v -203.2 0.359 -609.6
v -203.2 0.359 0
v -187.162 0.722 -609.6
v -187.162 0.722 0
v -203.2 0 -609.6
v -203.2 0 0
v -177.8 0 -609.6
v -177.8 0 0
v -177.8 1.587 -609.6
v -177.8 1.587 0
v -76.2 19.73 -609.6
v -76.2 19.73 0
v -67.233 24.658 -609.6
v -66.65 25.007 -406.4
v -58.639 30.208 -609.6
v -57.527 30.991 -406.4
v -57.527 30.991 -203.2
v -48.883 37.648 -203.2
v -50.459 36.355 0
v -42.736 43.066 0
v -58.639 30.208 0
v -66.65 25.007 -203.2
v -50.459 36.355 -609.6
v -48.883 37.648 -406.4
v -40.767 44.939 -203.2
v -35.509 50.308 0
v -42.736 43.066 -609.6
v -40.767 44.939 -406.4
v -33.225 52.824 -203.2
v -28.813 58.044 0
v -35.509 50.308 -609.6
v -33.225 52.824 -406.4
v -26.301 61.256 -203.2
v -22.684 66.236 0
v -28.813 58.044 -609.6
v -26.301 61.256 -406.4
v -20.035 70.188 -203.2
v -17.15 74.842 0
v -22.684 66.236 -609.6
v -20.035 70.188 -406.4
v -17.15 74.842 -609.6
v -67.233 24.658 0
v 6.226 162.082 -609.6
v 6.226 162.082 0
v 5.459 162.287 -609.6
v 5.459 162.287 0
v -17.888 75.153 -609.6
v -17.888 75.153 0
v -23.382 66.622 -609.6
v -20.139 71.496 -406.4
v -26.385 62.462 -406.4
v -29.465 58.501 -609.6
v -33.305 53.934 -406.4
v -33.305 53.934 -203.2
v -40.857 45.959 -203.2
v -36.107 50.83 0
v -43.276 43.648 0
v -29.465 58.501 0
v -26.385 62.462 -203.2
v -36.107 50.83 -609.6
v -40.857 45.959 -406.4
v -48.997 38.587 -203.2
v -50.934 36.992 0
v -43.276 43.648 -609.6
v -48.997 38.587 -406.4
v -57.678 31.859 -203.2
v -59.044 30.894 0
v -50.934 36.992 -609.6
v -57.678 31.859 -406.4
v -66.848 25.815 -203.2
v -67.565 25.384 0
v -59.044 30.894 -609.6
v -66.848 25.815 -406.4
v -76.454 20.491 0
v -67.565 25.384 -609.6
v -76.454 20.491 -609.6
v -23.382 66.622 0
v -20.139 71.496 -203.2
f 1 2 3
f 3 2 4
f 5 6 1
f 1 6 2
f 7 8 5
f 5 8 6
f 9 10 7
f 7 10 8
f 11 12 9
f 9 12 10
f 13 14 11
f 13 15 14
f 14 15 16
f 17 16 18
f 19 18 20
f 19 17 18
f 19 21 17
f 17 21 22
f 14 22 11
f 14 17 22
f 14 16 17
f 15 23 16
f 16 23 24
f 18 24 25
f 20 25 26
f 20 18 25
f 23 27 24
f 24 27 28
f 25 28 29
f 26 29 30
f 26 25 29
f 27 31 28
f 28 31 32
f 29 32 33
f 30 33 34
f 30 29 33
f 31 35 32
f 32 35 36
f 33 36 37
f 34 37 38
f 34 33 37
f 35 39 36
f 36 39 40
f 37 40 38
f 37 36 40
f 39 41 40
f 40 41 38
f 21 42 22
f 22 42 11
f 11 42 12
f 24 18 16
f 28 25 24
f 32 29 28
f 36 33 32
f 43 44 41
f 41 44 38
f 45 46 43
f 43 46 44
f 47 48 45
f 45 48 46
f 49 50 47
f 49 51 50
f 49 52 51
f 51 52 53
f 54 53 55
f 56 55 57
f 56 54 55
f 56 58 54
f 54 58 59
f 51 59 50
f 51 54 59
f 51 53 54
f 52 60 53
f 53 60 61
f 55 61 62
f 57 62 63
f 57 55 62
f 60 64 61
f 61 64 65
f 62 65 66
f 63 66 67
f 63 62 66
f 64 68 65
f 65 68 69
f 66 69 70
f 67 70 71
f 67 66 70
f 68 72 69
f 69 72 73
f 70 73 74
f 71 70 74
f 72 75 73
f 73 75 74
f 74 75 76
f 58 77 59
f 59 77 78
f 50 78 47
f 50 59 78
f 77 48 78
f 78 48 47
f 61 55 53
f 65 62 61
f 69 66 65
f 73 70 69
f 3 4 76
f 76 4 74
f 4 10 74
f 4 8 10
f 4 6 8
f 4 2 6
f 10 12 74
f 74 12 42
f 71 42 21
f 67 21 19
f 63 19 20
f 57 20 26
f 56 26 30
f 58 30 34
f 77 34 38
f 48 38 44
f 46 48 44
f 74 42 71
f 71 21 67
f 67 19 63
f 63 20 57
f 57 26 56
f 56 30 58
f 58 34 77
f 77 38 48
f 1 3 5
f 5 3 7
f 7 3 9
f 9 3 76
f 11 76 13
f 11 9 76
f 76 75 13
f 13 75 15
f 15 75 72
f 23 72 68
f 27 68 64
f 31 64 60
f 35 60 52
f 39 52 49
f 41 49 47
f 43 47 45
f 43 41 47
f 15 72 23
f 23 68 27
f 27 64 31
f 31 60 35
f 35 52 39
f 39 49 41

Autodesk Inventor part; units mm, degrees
ref_plane "YZ Plane" through (0, 0, 0) normal (1, 0, 0) x (0, 1, 0)
ref_plane "XZ Plane" through (0, 0, 0) normal (0, 1, 0) x (-1, 0, 0)
ref_plane "XY Plane" through (0, 0, 0) normal (0, 0, 1) x (1, 0, 0)
ref_plane "Work Plane1" through (0, 0, 0) normal (0, 0, 1) x (1, 0, 0)
sketch "Sketch1" plane through (0, 0, 0) normal (0, 0, 1) x (1, 0, 0)
  line L0 (-187.1625, 0.7219) -> (-76.4539, 20.4913)
  line L1 (-17.8884, 75.1531) -> (5.459, 162.2869)
  line L2 (5.459, 162.2869) -> (6.2257, 162.0815)
  line L3 (6.2257, 162.0815) -> (-17.1501, 74.8418)
  line L4 (-76.2, 19.7304) -> (-177.8, 1.5875)
  arc A0 (-76.2, 19.7304) -> (-17.1501, 74.8418) centre (-141.0979, 148.4568) ccw
  arc A1 (-76.4539, 20.4913) -> (-17.8884, 75.1531) centre (-141.0979, 148.4568) ccw
  line L5 (-177.8, 1.5875) -> (-177.8, 0)
  line L6 (-177.8, 0) -> (-203.2, 0)
  line L7 (-203.2, 0) -> (-203.2, 0.3587)
  line L8 (-203.2, 0.3587) -> (-187.1625, 0.7219)
  line L9 (0, 0) -> (0, 25.4) construction
  line L10 (0, 25.4) -> (-44.45, 25.4) construction
  line L11 (-44.45, 25.4) -> (-177.8, 1.5875) construction
  line L12 (-177.8, 1.5875) -> (-177.8, 0) construction
  line L13 (-177.8, 0) -> (0, 0) construction
  dimension "d0" = 0.7937
  dimension "d1" = 0.7937
  dimension "d4" = 76.2
  dimension "d8" = 1.5875
  dimension "d9" = 0
  dimension "d11" = 177.8
  dimension "d12" = 25.4
  dimension "d13" = 44.45
  dimension "d14" = 15
  dimension "d15" = 0.7937
  dimension "d16" = 25.4
extrude "Extrusion1" add sketch "Sketch1" against normal blind 609.6
properties part number "Shovel_Scoop" material "Aluminum-6061"
